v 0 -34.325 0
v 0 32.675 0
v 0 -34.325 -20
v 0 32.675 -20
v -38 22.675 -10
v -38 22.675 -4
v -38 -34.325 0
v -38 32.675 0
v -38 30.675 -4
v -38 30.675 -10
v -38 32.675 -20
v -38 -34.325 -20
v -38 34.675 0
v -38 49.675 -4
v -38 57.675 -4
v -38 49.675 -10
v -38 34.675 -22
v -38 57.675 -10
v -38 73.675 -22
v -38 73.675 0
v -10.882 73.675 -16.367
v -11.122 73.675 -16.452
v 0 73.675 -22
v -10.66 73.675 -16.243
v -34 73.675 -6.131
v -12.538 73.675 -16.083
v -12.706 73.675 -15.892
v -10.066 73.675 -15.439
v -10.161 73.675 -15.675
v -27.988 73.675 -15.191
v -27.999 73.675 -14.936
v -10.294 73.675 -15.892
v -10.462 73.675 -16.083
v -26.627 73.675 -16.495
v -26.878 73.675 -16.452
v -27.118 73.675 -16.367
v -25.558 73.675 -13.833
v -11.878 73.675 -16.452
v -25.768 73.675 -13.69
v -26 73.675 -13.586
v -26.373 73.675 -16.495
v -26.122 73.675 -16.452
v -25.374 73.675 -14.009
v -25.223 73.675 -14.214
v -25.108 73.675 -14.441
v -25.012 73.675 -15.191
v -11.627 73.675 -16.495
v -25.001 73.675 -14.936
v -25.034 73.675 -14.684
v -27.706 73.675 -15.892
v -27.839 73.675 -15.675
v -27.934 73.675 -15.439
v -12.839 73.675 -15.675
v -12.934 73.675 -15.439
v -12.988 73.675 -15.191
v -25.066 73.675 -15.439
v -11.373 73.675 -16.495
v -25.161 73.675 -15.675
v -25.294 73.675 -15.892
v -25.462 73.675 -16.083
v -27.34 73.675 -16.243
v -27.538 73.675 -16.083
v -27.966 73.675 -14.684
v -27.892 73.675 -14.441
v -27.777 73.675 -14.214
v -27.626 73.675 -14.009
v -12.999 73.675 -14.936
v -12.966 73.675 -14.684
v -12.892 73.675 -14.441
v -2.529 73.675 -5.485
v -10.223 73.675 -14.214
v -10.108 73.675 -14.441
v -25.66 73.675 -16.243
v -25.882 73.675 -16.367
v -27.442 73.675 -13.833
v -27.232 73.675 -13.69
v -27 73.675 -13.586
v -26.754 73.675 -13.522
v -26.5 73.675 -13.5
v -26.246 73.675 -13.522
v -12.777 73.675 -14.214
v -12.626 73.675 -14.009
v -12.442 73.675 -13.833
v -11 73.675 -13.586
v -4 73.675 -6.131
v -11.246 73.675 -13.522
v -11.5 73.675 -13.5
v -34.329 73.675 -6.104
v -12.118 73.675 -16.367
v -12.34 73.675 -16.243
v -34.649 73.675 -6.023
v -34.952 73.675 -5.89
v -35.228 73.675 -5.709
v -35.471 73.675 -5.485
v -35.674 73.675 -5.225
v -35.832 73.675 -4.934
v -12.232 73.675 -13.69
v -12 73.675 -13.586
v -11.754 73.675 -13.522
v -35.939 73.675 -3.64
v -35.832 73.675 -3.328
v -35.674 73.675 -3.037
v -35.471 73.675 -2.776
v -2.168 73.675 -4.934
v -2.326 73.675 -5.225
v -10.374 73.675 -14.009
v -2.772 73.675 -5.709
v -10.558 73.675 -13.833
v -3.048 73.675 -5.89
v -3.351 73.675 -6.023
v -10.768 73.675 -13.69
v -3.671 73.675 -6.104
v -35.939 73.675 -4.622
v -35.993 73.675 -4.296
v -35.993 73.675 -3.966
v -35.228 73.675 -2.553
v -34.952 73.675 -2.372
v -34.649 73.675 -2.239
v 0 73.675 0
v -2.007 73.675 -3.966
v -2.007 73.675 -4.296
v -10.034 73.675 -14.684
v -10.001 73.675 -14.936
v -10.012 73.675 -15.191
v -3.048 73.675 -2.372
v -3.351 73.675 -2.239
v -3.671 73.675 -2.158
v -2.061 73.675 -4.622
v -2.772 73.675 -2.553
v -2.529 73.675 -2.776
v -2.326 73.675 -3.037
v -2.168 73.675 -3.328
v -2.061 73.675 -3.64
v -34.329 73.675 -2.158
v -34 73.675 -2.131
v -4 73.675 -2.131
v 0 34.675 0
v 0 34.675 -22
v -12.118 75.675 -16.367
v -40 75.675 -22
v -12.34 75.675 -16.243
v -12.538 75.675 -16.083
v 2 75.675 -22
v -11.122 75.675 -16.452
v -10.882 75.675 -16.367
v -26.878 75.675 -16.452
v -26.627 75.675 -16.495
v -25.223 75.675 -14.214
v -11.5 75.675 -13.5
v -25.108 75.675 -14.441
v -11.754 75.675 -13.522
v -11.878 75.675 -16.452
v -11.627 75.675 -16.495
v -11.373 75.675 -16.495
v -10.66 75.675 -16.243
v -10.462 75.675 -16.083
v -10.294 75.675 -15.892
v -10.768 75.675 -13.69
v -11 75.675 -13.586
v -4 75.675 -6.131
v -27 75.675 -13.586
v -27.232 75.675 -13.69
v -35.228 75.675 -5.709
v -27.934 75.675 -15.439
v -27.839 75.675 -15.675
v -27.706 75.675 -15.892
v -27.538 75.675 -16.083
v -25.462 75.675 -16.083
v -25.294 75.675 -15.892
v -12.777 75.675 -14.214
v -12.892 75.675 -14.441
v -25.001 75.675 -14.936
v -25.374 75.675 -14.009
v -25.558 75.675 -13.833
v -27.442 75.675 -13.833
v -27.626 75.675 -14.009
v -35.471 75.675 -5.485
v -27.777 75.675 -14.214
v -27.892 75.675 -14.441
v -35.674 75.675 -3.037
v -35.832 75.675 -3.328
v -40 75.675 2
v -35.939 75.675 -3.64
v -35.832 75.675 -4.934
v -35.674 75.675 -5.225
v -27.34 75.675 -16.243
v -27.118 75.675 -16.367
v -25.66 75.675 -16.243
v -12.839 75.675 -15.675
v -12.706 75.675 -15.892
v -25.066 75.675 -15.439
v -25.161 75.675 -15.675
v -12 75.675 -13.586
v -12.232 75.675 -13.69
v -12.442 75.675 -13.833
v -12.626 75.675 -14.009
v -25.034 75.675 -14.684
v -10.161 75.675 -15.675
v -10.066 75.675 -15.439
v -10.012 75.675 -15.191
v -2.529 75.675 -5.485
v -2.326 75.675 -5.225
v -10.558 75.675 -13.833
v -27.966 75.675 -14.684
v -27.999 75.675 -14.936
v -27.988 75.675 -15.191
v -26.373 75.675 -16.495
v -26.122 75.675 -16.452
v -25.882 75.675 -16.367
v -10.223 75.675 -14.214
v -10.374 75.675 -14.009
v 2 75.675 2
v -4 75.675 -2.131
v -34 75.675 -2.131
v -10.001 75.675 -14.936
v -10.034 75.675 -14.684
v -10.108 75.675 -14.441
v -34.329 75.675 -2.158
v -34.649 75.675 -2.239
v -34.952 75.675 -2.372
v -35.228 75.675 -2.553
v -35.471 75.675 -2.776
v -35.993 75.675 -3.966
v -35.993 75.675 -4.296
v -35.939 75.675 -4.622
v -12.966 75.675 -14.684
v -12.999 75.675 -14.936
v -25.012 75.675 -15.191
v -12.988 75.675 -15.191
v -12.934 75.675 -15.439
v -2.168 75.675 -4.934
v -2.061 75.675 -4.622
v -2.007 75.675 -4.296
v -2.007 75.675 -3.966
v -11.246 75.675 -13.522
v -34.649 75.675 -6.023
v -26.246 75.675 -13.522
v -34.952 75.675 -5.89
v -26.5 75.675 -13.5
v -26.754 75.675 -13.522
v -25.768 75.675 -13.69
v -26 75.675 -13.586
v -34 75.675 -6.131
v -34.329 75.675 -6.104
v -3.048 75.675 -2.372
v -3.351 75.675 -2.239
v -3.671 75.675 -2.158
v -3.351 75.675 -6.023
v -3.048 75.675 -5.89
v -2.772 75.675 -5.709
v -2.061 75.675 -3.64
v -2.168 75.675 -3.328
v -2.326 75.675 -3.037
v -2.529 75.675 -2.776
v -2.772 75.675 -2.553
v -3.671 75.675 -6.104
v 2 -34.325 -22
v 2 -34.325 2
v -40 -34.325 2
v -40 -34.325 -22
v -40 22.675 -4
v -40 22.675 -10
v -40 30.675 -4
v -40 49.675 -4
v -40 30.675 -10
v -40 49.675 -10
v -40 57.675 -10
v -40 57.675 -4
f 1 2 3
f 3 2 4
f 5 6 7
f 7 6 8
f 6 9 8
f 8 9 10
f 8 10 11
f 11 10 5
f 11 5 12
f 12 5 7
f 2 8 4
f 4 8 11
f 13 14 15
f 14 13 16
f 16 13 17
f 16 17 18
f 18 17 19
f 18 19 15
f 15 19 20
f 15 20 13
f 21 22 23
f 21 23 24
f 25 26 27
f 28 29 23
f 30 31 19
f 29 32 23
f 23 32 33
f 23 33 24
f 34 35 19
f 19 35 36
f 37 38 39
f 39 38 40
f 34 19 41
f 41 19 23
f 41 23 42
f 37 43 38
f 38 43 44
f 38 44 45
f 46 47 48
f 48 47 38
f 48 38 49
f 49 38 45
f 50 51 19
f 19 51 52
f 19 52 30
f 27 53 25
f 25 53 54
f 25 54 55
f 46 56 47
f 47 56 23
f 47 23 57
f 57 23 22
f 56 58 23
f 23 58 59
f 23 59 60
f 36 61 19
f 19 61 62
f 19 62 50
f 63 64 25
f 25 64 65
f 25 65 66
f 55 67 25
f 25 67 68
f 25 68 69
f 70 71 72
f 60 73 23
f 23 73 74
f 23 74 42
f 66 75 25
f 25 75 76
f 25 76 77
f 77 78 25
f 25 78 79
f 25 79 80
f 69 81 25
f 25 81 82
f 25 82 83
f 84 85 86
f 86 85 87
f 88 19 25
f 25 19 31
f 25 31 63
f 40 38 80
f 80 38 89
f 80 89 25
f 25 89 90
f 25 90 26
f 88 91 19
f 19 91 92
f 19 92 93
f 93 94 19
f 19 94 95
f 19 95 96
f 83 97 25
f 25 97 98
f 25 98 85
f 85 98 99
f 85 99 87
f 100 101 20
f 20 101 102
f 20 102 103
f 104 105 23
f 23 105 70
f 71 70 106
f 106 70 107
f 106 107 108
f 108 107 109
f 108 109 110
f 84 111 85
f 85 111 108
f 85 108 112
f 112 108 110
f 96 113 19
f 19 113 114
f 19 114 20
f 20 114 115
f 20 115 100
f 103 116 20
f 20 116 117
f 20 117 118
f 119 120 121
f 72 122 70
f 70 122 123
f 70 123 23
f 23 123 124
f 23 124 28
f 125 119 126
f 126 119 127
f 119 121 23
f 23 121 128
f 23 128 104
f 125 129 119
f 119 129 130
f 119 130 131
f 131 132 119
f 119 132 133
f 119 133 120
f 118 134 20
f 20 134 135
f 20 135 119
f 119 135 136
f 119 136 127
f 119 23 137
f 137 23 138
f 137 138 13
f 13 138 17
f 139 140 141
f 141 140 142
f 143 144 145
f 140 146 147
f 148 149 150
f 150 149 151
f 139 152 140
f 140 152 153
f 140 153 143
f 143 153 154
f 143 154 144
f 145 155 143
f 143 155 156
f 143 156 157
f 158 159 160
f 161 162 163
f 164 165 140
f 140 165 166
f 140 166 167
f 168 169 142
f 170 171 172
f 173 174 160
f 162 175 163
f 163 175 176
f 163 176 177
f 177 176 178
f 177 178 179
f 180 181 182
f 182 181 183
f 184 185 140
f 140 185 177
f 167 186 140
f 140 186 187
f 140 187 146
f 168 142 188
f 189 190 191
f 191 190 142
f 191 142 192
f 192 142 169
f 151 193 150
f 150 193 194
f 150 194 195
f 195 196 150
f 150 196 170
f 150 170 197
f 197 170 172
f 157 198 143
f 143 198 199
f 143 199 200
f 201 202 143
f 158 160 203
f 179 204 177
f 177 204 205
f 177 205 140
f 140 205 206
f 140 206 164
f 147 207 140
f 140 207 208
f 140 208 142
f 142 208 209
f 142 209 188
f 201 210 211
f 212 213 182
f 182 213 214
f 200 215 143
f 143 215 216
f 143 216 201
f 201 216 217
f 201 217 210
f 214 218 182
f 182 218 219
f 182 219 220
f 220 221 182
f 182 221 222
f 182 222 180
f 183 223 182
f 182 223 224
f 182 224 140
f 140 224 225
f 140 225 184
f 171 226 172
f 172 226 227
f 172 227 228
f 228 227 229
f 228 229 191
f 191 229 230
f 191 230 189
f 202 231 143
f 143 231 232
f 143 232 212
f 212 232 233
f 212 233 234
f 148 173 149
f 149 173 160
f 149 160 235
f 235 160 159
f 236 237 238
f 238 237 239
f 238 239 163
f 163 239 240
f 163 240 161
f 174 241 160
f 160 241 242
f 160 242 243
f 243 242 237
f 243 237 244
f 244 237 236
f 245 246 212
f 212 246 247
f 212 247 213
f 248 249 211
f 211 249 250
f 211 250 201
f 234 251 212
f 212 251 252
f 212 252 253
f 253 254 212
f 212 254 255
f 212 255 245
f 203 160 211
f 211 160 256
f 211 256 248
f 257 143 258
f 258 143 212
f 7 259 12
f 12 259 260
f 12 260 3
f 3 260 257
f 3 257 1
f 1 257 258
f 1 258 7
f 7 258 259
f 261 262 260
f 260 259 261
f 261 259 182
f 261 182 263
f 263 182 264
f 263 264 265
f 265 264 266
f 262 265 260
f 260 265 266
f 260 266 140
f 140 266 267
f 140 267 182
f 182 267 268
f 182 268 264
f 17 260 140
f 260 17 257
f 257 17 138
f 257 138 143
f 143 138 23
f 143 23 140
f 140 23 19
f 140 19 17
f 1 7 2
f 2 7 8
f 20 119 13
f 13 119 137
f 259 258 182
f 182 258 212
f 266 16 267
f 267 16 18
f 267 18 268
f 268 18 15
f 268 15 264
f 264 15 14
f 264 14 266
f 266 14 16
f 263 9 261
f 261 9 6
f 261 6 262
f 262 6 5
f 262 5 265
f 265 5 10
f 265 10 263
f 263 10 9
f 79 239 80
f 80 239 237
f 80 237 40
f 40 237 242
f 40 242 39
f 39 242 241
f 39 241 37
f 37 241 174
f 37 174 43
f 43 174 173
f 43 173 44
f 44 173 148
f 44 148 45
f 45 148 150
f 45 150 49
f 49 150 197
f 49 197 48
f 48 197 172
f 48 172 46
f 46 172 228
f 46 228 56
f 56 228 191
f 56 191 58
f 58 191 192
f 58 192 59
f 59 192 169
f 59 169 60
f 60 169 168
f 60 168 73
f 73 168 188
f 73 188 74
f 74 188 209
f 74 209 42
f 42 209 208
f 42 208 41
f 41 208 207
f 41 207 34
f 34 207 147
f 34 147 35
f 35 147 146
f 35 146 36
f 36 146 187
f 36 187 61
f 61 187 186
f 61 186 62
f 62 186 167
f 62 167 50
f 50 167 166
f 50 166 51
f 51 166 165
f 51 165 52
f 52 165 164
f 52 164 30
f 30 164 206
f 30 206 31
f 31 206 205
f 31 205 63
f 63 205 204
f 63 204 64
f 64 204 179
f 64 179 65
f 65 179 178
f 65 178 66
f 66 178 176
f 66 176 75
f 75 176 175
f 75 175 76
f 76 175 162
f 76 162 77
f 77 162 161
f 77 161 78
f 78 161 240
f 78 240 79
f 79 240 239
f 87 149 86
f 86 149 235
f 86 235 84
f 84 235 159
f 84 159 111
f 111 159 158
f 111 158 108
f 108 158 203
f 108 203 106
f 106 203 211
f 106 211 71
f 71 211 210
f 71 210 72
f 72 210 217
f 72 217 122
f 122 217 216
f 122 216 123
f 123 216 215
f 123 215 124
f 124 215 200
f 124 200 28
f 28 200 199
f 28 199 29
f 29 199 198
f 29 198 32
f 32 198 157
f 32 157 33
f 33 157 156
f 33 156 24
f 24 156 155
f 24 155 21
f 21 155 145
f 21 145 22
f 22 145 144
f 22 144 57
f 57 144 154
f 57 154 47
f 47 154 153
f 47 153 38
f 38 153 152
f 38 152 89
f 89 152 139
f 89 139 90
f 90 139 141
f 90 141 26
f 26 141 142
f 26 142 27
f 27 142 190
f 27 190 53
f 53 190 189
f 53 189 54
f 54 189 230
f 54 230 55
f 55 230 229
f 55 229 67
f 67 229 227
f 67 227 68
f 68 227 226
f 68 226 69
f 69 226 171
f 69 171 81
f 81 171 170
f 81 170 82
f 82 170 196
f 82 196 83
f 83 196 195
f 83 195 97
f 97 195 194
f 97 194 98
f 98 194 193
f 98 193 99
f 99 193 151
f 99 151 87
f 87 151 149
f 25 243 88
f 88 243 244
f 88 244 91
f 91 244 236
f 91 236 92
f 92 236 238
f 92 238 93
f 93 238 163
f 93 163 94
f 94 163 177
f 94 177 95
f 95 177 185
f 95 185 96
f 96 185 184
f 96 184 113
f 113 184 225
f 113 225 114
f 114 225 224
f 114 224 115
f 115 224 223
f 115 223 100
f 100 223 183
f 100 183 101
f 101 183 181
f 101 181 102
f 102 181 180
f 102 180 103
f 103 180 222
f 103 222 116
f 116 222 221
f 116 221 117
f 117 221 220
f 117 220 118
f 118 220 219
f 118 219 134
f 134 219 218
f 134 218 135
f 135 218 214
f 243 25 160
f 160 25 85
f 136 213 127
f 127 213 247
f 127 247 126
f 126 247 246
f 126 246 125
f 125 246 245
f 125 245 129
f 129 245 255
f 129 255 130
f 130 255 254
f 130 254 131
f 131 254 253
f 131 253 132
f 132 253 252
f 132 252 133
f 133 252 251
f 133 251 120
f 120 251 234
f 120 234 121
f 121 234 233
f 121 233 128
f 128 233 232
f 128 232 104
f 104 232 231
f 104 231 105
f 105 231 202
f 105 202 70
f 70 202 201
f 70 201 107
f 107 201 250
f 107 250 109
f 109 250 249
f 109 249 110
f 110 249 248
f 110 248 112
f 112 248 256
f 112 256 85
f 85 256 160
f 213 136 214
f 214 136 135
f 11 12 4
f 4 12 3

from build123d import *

# Parameters (mm, degrees)
SKETCH_1_W          = 38
SKETCH_1_H          = 106
EXTRUDE_1_DEPTH     = 2
SKETCH_2_W          = 42
SKETCH_2_H          = 110
SKETCH_2_W_2        = 38
SKETCH_2_H_2        = 39
SKETCH_2_H_3        = 65
EXTRUDE_5_DEPTH     = 24
SKETCH_9_W          = 6
SKETCH_9_H          = 8
CUT_EXTRUDE_2_DEPTH = 20
SKETCH_10_R         = 1.5
CUT_EXTRUDE_3_DEPTH = 20
SKETCH_12_W         = 38
SKETCH_12_H         = 65
EXTRUDE_7_DEPTH     = 2
SKETCH_13_W         = 38
SKETCH_13_H         = 20
CUT_EXTRUDE_4_DEPTH = 2


with BuildPart() as part:
    # 草图1 → 凸台-拉伸1 (new body)
    with BuildSketch(Plane.XY):
        with Locations((-19, 20.675324675)):
            Rectangle(SKETCH_1_W, SKETCH_1_H)
    extrude(amount=EXTRUDE_1_DEPTH)

    # 草图2 → 凸台-拉伸5 (add)
    with BuildSketch(Plane.XY.offset(2)):
        with Locations((-19, 20.675324675)):
            Rectangle(SKETCH_2_W, SKETCH_2_H)
        with Locations((-19, 54.175324675)):
            Rectangle(SKETCH_2_W_2, SKETCH_2_H_2, mode=Mode.SUBTRACT)
        with Locations((-19, 0.175324675)):
            Rectangle(SKETCH_2_W_2, SKETCH_2_H_3, mode=Mode.SUBTRACT)
    extrude(amount=-EXTRUDE_5_DEPTH)

    # 草图9 → 切除-拉伸2 (cut)
    with BuildSketch(Plane.ZY.offset(40)):
        with Locations((-7, 26.675324675)):
            Rectangle(SKETCH_9_W, SKETCH_9_H)
        with Locations((-7, 53.675324675)):
            Rectangle(SKETCH_9_W, SKETCH_9_H)
    extrude(amount=-CUT_EXTRUDE_2_DEPTH, mode=Mode.SUBTRACT)

    # 草图10 → 切除-拉伸3 (cut)
    with BuildSketch(Plane(origin=(0, 75.675324675, 0), x_dir=(1, 0, 0), z_dir=(0, 1, 0))):
        with Locations((-26.5, 15)):
            Circle(SKETCH_10_R)
        with Locations((-11.5, 15)):
            Circle(SKETCH_10_R)
        with BuildLine():
            Line((-34, 6.130920254), (-4, 6.130920254))
            ThreePointArc((-4, 6.130920254), (-2, 4.130920254), (-4, 2.130920254))
            Line((-4, 2.130920254), (-34, 2.130920254))
            ThreePointArc((-34, 2.130920254), (-36, 4.130920254), (-34, 6.130920254))
        make_face()
    extrude(amount=-CUT_EXTRUDE_3_DEPTH, mode=Mode.SUBTRACT)

    # 草图12 → 凸台-拉伸7 (add)
    with BuildSketch(Plane(origin=(0, 0, -22), x_dir=(-1, 0, 0), z_dir=(0, 0, -1))):
        with Locations((19, 0.175324675)):
            Rectangle(SKETCH_12_W, SKETCH_12_H)
    extrude(amount=-EXTRUDE_7_DEPTH)

    # 草图13 → 切除-拉伸4 (cut)
    with BuildSketch(Plane.XZ.offset(34.324675325)):
        with Locations((-19, -10)):
            Rectangle(SKETCH_13_W, SKETCH_13_H)
    extrude(amount=-CUT_EXTRUDE_4_DEPTH, mode=Mode.SUBTRACT)


solid = part.part
